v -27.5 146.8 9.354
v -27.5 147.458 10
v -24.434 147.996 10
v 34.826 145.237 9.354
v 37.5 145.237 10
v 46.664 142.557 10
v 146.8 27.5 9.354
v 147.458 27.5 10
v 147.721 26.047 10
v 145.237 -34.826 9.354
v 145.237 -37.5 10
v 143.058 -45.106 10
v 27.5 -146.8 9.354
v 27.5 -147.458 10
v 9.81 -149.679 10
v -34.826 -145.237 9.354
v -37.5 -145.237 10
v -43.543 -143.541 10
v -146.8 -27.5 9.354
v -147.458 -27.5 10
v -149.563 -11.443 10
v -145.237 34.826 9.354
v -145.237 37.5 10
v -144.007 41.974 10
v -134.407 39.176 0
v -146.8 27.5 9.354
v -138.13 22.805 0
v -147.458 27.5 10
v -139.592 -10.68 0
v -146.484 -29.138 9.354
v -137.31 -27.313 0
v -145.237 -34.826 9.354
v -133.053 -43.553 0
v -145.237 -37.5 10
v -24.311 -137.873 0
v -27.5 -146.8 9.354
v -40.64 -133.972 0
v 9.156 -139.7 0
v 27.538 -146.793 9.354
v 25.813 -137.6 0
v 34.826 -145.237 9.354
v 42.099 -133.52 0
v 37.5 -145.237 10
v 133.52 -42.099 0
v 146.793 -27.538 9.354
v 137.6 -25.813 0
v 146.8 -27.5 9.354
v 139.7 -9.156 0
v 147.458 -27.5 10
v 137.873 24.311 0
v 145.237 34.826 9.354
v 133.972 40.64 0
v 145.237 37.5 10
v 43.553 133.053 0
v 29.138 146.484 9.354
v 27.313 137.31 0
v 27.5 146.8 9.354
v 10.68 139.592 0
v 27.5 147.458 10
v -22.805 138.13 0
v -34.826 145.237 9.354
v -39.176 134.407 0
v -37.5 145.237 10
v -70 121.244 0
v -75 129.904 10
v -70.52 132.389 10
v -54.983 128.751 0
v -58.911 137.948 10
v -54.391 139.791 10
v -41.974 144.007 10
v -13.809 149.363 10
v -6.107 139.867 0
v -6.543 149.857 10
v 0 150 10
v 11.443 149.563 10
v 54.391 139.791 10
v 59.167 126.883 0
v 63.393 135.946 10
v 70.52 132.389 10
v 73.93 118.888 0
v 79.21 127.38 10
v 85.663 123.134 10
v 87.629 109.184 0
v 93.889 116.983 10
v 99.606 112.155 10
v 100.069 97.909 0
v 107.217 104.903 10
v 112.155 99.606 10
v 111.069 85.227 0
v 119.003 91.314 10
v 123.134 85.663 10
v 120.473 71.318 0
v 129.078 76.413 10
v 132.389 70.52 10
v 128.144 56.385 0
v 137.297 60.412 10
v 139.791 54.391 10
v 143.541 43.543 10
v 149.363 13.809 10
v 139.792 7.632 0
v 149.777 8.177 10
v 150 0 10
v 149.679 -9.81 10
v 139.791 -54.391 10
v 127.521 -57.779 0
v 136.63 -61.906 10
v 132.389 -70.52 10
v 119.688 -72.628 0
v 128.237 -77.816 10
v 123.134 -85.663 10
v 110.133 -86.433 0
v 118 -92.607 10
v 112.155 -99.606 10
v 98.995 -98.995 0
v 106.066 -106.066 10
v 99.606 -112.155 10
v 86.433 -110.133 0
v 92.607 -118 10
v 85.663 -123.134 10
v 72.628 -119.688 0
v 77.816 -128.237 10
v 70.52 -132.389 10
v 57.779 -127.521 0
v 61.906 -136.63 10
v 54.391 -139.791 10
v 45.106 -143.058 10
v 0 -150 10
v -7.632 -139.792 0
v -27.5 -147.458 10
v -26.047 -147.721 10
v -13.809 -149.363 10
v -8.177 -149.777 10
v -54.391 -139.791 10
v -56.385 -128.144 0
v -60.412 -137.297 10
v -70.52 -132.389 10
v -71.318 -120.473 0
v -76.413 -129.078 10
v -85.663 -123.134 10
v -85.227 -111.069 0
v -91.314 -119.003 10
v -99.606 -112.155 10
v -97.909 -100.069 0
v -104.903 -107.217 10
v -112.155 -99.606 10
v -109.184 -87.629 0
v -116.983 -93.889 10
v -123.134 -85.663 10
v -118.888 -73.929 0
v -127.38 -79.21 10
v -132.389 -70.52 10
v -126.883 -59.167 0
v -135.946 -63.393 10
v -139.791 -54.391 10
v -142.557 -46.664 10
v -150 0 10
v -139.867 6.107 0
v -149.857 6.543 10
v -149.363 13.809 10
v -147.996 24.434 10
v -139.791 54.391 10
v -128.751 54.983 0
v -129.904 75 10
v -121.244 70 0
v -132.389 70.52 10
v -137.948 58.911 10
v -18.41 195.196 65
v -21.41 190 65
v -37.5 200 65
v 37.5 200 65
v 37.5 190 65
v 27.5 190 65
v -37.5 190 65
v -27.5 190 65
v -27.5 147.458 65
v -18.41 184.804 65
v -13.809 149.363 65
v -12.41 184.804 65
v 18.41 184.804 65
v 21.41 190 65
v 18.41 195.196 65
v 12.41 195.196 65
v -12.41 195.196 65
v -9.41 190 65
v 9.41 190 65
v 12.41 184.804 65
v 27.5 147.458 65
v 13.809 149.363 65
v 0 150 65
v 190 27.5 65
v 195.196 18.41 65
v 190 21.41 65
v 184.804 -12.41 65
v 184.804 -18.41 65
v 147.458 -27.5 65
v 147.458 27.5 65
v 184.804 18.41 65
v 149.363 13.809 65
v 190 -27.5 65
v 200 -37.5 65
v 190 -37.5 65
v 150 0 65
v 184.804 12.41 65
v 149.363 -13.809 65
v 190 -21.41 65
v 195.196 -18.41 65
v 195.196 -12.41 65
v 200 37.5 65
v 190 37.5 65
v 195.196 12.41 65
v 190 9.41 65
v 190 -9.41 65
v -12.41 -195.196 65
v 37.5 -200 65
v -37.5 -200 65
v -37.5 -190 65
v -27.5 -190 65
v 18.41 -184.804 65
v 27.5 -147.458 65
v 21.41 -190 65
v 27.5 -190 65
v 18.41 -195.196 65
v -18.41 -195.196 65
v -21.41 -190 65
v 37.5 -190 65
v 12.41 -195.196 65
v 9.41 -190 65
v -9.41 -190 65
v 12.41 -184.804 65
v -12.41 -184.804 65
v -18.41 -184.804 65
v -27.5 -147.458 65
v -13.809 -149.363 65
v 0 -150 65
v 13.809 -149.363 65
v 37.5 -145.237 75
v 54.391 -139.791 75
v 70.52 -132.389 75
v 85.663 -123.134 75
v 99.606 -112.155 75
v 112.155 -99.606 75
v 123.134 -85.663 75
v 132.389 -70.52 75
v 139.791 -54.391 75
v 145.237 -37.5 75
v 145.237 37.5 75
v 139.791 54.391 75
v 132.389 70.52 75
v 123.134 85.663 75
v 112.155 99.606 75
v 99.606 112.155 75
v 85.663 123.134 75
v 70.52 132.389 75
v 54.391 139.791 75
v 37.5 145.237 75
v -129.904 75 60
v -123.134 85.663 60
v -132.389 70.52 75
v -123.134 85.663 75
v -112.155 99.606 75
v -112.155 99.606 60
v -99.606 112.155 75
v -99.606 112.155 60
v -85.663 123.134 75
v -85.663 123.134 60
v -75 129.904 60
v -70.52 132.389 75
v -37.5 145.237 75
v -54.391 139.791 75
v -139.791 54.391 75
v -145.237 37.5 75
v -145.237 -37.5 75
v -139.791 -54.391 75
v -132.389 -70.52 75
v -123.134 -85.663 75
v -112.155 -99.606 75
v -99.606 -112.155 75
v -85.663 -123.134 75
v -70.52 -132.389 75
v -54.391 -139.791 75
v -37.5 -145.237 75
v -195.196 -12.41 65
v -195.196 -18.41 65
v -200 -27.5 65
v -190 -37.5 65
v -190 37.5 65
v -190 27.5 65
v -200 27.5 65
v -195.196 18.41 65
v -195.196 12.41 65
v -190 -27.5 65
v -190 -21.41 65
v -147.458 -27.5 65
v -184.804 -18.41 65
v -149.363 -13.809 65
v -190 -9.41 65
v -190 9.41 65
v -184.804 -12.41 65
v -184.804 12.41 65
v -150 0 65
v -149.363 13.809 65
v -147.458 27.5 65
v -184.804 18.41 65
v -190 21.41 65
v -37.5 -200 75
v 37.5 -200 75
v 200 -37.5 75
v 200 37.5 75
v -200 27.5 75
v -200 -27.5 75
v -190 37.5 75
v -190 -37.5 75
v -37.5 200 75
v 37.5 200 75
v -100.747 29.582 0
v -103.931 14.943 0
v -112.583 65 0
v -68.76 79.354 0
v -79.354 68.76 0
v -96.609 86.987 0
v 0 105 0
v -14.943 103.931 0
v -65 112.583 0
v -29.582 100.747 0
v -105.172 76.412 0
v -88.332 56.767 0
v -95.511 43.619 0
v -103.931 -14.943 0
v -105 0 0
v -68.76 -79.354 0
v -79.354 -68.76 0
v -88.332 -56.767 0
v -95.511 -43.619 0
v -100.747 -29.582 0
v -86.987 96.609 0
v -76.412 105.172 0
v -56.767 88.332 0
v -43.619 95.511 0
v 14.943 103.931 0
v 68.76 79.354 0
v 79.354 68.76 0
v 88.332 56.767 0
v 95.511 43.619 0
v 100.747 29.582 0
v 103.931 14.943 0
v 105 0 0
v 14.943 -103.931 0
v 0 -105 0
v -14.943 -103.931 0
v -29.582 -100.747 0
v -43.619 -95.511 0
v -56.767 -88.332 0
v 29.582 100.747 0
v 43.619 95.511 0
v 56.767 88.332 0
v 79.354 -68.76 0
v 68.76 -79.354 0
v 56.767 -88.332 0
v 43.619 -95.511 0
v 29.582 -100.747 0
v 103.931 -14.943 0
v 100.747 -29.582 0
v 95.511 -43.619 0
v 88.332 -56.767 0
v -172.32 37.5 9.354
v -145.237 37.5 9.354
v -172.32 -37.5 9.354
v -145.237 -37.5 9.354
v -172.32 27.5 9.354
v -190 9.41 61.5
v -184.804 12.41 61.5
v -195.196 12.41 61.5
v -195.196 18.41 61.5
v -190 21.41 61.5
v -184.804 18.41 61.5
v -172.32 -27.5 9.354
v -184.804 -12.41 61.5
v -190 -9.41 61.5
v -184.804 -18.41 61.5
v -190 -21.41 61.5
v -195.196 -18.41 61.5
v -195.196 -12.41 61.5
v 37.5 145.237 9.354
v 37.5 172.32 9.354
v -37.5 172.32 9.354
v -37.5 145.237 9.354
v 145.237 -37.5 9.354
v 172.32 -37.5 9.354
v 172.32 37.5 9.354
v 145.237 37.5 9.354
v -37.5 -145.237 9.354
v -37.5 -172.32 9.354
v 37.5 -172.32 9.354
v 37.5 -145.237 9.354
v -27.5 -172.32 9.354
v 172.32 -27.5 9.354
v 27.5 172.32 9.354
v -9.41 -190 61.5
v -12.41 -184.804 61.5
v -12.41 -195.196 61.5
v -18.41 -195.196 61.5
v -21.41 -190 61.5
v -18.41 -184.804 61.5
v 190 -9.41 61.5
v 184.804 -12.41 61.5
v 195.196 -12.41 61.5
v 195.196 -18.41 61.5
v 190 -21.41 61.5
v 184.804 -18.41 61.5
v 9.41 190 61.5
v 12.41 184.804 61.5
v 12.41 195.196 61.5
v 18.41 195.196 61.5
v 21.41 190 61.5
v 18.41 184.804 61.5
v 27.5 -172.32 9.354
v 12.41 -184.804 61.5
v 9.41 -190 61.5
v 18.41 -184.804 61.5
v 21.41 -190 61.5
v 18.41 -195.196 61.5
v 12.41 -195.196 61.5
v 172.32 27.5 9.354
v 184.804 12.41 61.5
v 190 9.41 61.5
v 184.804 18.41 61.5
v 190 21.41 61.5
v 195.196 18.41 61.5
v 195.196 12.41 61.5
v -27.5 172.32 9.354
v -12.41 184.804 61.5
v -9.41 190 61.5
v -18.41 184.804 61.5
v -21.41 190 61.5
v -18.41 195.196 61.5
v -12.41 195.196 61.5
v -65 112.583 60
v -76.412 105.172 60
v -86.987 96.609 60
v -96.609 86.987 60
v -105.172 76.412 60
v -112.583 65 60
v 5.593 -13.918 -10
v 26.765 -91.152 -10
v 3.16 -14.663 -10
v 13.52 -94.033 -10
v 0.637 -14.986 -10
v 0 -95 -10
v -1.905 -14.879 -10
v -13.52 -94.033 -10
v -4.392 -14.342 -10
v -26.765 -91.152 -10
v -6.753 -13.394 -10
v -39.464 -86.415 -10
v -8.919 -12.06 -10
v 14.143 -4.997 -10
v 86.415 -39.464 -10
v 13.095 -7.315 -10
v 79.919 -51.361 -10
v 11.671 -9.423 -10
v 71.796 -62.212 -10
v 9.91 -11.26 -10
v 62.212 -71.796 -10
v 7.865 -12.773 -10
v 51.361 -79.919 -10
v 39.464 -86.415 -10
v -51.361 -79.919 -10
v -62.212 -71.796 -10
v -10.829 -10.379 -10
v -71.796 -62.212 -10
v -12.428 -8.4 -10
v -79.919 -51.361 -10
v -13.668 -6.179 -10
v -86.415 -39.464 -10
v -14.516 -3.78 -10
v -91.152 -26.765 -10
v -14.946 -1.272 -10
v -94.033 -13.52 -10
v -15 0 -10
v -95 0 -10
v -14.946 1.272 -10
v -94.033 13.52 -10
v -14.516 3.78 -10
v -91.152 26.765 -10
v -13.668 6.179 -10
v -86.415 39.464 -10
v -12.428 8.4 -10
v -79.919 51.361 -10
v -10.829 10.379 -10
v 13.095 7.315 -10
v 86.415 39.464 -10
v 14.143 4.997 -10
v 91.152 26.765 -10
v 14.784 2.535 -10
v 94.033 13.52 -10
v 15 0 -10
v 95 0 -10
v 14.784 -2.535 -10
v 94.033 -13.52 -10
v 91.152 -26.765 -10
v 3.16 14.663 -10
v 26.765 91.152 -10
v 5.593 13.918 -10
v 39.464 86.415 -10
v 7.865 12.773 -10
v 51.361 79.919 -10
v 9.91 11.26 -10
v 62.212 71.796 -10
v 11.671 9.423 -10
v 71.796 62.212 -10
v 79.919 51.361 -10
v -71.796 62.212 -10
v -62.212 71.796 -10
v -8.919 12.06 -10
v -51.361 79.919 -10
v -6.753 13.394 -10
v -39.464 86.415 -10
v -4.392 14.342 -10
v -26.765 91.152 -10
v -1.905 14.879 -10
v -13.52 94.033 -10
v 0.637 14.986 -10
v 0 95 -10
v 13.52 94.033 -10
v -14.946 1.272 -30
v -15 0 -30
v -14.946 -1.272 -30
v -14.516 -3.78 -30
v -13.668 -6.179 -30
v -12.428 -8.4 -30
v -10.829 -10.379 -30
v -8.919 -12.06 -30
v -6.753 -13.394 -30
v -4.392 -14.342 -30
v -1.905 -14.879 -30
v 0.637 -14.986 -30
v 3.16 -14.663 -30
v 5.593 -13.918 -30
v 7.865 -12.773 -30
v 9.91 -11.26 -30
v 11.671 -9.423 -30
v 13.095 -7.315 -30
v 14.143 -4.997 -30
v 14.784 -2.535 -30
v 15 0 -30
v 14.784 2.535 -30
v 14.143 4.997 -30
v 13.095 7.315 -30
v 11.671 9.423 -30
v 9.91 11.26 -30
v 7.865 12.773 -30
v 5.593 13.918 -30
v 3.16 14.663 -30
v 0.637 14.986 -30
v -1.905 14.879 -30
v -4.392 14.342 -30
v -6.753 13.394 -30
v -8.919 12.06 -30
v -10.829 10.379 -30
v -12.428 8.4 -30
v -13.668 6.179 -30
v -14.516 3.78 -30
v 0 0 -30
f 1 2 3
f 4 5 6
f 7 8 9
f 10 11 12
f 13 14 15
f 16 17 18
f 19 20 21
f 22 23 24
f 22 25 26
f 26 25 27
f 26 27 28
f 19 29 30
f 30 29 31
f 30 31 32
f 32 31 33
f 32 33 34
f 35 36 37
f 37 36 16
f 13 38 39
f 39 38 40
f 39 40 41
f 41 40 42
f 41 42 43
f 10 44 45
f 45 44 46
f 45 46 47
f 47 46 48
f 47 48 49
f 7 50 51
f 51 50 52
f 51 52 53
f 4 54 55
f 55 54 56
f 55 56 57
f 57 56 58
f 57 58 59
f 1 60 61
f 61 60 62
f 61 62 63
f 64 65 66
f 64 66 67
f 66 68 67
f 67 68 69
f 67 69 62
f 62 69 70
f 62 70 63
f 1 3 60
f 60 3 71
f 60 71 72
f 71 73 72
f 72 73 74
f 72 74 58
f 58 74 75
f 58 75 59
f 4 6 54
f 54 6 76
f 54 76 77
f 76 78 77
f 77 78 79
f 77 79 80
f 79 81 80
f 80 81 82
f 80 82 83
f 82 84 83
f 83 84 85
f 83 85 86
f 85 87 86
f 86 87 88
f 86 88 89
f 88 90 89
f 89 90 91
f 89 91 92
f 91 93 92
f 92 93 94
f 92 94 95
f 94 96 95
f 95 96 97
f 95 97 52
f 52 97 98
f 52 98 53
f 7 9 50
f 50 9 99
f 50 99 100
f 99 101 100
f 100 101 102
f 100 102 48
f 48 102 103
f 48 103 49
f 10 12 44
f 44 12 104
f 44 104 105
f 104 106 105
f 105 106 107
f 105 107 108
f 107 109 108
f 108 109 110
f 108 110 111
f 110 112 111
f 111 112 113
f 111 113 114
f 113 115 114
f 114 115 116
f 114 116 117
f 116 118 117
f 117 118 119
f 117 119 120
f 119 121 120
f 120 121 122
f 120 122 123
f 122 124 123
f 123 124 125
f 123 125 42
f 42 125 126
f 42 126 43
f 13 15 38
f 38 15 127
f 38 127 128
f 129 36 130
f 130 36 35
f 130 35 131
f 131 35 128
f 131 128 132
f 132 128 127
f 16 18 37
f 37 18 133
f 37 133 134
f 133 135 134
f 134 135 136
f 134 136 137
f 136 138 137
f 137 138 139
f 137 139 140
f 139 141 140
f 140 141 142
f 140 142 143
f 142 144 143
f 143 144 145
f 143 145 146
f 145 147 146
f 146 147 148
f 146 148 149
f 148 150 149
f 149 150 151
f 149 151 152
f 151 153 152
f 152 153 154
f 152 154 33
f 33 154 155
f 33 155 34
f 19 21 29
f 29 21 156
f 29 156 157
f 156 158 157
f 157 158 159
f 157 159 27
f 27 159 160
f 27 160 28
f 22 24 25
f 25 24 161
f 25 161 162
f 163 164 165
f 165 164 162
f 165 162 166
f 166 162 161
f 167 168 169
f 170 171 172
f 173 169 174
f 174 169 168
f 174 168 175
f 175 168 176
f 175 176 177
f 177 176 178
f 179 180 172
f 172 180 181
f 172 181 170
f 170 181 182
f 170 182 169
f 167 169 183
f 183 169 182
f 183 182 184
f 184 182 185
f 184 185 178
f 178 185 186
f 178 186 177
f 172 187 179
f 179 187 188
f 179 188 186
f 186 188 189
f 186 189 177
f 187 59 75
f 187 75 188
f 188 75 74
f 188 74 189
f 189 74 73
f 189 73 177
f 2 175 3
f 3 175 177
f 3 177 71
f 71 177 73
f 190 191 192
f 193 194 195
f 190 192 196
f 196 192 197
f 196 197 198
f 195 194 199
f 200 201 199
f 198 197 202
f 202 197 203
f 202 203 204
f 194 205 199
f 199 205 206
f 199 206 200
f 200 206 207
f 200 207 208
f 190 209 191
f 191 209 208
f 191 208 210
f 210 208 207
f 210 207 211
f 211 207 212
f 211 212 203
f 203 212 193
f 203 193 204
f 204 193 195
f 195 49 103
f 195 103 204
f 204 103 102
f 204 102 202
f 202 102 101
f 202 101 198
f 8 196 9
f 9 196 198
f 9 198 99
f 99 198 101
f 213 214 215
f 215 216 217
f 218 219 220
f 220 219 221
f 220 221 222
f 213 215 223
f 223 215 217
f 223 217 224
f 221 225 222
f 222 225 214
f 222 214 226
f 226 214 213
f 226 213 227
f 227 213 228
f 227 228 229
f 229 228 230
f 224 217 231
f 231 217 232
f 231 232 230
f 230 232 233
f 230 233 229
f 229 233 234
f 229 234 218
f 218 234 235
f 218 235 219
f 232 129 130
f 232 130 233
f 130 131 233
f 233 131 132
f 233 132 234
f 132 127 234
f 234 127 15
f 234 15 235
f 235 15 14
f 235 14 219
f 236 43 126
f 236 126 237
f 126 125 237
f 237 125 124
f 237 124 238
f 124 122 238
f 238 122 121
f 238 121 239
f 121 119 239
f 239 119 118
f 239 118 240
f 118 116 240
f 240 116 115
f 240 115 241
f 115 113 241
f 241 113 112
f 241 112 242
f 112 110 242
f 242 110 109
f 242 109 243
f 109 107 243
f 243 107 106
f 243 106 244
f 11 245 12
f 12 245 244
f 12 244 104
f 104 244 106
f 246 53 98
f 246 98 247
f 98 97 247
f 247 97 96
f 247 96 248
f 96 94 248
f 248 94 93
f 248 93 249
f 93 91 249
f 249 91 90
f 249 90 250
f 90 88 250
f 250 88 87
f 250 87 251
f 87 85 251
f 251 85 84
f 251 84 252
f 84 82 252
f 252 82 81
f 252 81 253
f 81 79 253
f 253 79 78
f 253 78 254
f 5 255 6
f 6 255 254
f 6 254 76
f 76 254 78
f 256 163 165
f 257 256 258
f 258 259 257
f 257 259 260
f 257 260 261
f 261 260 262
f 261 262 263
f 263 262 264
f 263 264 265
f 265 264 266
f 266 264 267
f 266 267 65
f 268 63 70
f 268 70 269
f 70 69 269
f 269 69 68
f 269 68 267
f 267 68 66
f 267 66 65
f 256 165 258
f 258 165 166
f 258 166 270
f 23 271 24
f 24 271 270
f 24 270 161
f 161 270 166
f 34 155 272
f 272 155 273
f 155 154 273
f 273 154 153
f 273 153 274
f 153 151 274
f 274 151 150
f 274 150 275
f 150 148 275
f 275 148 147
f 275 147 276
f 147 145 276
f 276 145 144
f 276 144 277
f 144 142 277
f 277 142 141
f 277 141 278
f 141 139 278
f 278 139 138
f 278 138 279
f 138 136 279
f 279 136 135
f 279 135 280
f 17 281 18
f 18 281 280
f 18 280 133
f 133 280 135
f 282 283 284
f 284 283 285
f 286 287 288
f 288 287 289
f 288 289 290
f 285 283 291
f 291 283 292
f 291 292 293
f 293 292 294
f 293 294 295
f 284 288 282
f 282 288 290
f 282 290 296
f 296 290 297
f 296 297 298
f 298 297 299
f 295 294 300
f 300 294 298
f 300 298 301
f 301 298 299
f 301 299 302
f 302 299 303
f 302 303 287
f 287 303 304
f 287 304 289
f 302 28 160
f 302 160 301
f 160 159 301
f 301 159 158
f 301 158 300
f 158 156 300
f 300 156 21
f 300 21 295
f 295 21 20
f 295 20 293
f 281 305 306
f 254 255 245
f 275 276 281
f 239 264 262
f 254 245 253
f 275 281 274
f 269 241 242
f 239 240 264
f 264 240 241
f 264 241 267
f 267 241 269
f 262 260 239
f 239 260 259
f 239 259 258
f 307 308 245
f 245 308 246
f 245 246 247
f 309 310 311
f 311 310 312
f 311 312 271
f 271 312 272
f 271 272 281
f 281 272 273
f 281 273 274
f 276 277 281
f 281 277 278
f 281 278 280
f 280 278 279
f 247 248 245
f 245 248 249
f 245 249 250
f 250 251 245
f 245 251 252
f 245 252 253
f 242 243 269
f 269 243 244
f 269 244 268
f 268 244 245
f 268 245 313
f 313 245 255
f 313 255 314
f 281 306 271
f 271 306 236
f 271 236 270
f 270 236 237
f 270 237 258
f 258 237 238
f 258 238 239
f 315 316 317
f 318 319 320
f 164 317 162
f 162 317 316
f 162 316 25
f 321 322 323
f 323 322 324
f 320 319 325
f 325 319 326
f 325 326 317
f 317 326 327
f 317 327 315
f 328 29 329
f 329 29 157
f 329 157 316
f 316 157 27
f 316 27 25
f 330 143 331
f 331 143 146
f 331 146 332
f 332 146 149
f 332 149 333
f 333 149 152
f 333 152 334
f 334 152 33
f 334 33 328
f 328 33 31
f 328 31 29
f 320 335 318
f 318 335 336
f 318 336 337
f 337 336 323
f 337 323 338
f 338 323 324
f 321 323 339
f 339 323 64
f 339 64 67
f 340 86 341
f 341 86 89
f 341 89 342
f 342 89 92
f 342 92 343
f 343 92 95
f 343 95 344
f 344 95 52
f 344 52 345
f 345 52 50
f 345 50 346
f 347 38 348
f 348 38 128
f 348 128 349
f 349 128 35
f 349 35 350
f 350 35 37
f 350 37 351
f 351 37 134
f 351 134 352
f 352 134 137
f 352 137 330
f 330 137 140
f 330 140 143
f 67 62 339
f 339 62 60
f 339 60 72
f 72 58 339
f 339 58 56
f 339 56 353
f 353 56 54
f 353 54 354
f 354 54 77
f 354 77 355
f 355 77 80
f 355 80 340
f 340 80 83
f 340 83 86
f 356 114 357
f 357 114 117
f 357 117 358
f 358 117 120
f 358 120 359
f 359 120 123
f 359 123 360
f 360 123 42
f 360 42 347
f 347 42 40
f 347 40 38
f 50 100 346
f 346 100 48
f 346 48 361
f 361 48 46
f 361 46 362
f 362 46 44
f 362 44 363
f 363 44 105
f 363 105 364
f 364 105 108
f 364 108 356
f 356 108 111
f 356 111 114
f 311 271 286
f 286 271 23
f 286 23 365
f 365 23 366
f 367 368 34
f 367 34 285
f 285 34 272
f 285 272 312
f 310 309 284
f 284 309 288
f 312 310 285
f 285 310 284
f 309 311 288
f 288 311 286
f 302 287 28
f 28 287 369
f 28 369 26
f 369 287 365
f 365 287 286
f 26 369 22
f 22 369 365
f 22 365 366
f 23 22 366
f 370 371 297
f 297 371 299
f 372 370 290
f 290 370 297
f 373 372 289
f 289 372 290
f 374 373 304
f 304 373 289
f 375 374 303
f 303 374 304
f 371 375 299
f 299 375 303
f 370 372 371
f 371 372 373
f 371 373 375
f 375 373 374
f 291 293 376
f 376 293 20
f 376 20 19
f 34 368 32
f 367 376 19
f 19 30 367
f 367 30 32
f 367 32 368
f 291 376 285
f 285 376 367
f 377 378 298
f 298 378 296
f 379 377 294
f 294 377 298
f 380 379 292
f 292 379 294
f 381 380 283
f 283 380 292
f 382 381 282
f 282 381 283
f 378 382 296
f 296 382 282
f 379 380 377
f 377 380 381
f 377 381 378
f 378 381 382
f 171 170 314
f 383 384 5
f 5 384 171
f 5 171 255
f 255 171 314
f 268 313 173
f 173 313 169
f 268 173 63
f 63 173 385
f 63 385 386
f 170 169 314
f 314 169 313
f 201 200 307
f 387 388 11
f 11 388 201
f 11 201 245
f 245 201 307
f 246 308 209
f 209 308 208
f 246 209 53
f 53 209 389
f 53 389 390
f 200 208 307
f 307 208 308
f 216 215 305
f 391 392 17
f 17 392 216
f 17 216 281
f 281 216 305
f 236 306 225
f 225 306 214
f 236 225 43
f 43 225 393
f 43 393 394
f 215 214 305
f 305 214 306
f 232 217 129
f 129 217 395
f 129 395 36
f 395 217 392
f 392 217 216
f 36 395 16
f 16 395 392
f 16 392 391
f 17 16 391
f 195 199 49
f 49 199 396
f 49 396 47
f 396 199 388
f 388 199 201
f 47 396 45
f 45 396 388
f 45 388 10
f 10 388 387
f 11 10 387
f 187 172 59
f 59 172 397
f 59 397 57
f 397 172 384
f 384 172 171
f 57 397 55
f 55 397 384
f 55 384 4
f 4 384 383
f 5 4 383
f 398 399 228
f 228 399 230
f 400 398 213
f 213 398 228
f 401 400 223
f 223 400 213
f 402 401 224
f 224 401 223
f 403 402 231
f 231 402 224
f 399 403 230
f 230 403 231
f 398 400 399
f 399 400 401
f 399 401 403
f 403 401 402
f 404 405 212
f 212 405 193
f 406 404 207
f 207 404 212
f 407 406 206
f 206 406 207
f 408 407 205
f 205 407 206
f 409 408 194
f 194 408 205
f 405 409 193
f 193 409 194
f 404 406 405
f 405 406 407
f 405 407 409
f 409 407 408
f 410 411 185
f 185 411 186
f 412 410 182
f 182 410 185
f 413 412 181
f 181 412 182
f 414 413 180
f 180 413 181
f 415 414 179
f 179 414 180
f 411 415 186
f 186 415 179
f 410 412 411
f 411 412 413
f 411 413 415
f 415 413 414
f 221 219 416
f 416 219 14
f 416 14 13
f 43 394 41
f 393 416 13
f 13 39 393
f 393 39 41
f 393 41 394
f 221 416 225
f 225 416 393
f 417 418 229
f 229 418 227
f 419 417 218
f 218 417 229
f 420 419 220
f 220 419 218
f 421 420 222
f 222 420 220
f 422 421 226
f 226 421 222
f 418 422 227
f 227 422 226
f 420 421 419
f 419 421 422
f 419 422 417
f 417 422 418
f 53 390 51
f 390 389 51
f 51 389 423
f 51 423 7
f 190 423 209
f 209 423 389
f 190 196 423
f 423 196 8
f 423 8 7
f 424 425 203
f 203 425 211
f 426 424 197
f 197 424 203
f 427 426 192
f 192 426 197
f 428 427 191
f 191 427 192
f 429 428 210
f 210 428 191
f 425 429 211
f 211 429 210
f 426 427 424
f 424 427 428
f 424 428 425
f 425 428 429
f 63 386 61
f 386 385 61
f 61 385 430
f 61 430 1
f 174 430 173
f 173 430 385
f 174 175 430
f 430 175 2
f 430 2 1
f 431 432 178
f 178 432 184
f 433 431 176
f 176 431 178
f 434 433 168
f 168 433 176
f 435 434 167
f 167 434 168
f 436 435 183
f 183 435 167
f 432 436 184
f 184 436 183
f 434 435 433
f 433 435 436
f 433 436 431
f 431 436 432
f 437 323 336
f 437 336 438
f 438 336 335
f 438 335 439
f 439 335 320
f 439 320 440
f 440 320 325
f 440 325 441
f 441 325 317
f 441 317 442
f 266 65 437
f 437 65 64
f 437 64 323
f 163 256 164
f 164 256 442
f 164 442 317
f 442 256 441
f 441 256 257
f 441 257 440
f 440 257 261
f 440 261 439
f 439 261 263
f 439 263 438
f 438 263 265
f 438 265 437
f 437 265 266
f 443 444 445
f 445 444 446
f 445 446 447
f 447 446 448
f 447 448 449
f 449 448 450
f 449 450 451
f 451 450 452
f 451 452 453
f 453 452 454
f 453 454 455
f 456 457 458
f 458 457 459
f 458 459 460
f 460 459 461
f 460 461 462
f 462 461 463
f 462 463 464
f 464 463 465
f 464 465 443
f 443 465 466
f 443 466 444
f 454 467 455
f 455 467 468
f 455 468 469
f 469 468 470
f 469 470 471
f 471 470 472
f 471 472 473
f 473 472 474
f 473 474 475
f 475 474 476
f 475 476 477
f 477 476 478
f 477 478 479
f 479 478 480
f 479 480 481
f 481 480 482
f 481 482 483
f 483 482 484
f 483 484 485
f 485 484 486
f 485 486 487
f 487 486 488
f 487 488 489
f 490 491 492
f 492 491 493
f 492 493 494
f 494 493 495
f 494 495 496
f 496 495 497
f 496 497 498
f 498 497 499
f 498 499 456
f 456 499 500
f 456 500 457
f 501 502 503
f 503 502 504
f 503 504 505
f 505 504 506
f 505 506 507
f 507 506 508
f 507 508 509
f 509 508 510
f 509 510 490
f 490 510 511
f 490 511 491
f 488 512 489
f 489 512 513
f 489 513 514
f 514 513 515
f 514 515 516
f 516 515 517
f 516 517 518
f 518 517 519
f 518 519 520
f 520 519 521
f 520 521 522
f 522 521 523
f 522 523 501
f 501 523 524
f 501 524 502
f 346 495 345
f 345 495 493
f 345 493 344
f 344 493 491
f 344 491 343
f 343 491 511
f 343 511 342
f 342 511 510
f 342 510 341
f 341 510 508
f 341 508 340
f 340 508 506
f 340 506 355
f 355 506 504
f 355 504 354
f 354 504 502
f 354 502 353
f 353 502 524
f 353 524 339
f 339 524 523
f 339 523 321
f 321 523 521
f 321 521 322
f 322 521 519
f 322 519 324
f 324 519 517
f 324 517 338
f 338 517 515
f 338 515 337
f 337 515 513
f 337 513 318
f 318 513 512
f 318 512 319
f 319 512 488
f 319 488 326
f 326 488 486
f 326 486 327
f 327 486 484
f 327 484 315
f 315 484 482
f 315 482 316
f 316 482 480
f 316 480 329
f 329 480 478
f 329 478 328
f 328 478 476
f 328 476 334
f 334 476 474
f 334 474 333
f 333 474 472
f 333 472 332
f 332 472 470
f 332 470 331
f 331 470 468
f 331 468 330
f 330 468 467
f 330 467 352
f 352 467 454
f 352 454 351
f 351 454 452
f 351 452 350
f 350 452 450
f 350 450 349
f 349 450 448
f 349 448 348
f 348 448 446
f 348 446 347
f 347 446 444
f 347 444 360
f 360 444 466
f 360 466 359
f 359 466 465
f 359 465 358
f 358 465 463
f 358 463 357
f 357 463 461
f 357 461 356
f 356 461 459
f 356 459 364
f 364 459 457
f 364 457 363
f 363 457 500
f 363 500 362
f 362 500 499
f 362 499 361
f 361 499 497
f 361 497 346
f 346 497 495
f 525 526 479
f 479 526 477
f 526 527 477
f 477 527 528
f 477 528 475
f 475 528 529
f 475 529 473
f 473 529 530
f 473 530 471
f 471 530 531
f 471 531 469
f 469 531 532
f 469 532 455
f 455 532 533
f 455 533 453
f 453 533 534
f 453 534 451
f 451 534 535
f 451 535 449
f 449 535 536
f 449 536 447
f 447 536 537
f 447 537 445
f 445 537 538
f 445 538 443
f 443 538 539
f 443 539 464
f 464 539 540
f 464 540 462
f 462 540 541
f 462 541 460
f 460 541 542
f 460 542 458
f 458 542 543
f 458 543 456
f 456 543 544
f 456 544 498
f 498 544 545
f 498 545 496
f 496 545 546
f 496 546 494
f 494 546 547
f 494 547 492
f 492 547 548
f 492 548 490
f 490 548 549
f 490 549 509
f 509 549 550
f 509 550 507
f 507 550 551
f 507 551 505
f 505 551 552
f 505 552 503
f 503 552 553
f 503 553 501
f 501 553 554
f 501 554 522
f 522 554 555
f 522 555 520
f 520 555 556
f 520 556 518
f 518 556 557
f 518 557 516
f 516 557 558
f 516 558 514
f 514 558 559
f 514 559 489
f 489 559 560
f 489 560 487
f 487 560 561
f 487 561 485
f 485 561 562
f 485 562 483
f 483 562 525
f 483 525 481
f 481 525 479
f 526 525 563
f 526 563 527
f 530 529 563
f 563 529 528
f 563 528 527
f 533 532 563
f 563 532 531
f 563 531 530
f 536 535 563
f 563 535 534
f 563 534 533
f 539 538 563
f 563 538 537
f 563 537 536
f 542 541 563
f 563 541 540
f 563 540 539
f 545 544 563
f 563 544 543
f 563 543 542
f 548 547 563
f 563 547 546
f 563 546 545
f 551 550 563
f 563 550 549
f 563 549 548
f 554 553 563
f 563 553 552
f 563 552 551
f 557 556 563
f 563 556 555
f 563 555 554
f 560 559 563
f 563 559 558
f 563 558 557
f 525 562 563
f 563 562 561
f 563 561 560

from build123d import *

# Parameters (mm, degrees)
SKETCH1_R                = 150
BOSS_EXTRUDE1_DEPTH      = 75
CHAMFER1_SIZE            = 10
BOSS_EXTRUDE2_START      = -10
BOSS_EXTRUDE2_DEPTH      = 10
CHAMFER2_SIZE            = 10
BOSS_EXTRUDE3_DEPTH      = 10
BOSS_EXTRUDE4_DEPTH      = 3.5
CIRPATTERN1_COUNT        = 4
CIRPATTERN1_COPY_1_DEPTH = 10
CIRPATTERN1_COPY_2_DEPTH = 10
CIRPATTERN1_COPY_3_DEPTH = 10
CIRPATTERN1_COPY_4_DEPTH = 3.5
CIRPATTERN1_COPY_5_DEPTH = 3.5
CIRPATTERN1_COPY_6_DEPTH = 3.5
CUT_EXTRUDE1_DEPTH       = 60
SKETCH6_R                = 110
BOSS_EXTRUDE5_DEPTH      = 10
CHAMFER3_SIZE            = 15
SKETCH7_R                = 15
BOSS_EXTRUDE6_DEPTH      = 20


with BuildPart() as part:
    # Sketch1 → Boss-Extrude1 (new body)
    with BuildSketch(Plane(origin=(0, 0, 0), x_dir=(0, 1, 0), z_dir=(0, 0, 1))):
        with Locations(Location((0, 0, 0), (0, 0, 270))):
            Circle(SKETCH1_R)
    extrude(amount=BOSS_EXTRUDE1_DEPTH)

    # Chamfer1
    chamfer1_edges = [part.edges().sort_by_distance(p)[0] for p in [
        (-150, 0, 0),
    ]]
    chamfer(chamfer1_edges, length=CHAMFER1_SIZE)

    # Sketch2 → Boss-Extrude2 (add)
    with BuildSketch(Plane.XY.offset(75).offset(BOSS_EXTRUDE2_START)):
        with BuildLine():
            Line((-200, 37.5), (-200, -37.5))
            Line((-200, -37.5), (-145.236875483, -37.5))
            ThreePointArc((-145.236875483, -37.5), (-150, 0), (-145.236875483, 37.5))
            Line((-145.236875483, 37.5), (-200, 37.5))
        make_face()
    boss_extrude2 = extrude(amount=BOSS_EXTRUDE2_DEPTH)

    # Chamfer2
    chamfer2_edges = [part.edges().sort_by_distance(p)[0] for p in [
        (-200, 37.5, 70),
        (-200, -37.5, 70),
    ]]
    chamfer(chamfer2_edges, length=CHAMFER2_SIZE)

    # Sketch3 → Boss-Extrude3 (add)
    with BuildSketch(Plane(origin=(0, 37.5, 0), x_dir=(-1, 0, 0), z_dir=(0, 1, 0))):
        Polygon((145.236875483, 65), (145.236875483, 9.354005049), (172.32, 9.354005049), (190, 65), align=None)
    boss_extrude3 = extrude(amount=-BOSS_EXTRUDE3_DEPTH)

    # Sketch4 → Boss-Extrude4 (add)
    with BuildSketch(Plane(origin=(0, 0, 65), x_dir=(1, 0, 0), z_dir=(0, 0, -1))):
        Polygon((-190, -9.409610349), (-195.196152423, -12.409610349), (-195.196152423, -18.409610349), (-190, -21.409610349), (-184.803847577, -18.409610349), (-184.803847577, -12.409610349), align=None)
    boss_extrude4 = extrude(amount=BOSS_EXTRUDE4_DEPTH)

    # Mirror1: Boss-Extrude3, Boss-Extrude4 across plane
    add(boss_extrude3.mirror(Plane.ZX))
    add(boss_extrude4.mirror(Plane.ZX))

    # CirPattern1: Boss-Extrude2, Boss-Extrude3, Boss-Extrude4 ×4 about axis
    cirpattern1_axis = Axis((0, 0, 0), (0, 0, 1))
    add([boss_extrude2.rotate(cirpattern1_axis, i * 360 / CIRPATTERN1_COUNT) for i in range(1, CIRPATTERN1_COUNT)])
    add([boss_extrude3.rotate(cirpattern1_axis, i * 360 / CIRPATTERN1_COUNT) for i in range(1, CIRPATTERN1_COUNT)])
    add([boss_extrude4.rotate(cirpattern1_axis, i * 360 / CIRPATTERN1_COUNT) for i in range(1, CIRPATTERN1_COUNT)])

    # CirPattern1 copy 1 sketch → CirPattern1 copy 1 (add)
    with BuildSketch(Plane(origin=(37.5, 0, 0), x_dir=(0, -1, 0), z_dir=(1, 0, 0))):
        Polygon((145.236875483, -65), (145.236875483, -9.354005049), (172.32, -9.354005049), (190, -65), align=None)
    extrude(amount=-CIRPATTERN1_COPY_1_DEPTH)

    # CirPattern1 copy 2 sketch → CirPattern1 copy 2 (add)
    with BuildSketch(Plane(origin=(0, 37.5, 0), x_dir=(1, 0, 0), z_dir=(0, 1, 0))):
        Polygon((145.236875483, -65), (145.236875483, -9.354005049), (172.32, -9.354005049), (190, -65), align=None)
    extrude(amount=-CIRPATTERN1_COPY_2_DEPTH)

    # CirPattern1 copy 3 sketch → CirPattern1 copy 3 (add)
    with BuildSketch(Plane(origin=(-37.5, 0, 0), x_dir=(0, 1, 0), z_dir=(-1, 0, 0))):
        Polygon((145.236875483, -65), (145.236875483, -9.354005049), (172.32, -9.354005049), (190, -65), align=None)
    extrude(amount=-CIRPATTERN1_COPY_3_DEPTH)

    # CirPattern1 copy 4 sketch → CirPattern1 copy 4 (add)
    with BuildSketch(Plane.YX.offset(-65)):
        Polygon((-190, 9.409610349), (-195.196152423, 12.409610349), (-195.196152423, 18.409610349), (-190, 21.409610349), (-184.803847577, 18.409610349), (-184.803847577, 12.409610349), align=None)
    extrude(amount=CIRPATTERN1_COPY_4_DEPTH)

    # CirPattern1 copy 5 sketch → CirPattern1 copy 5 (add)
    with BuildSketch(Plane(origin=(0, 0, 65), x_dir=(-1, 0, 0), z_dir=(0, 0, -1))):
        Polygon((-190, 9.409610349), (-195.196152423, 12.409610349), (-195.196152423, 18.409610349), (-190, 21.409610349), (-184.803847577, 18.409610349), (-184.803847577, 12.409610349), align=None)
    extrude(amount=CIRPATTERN1_COPY_5_DEPTH)

    # CirPattern1 copy 6 sketch → CirPattern1 copy 6 (add)
    with BuildSketch(Plane(origin=(0, 0, 65), x_dir=(0, -1, 0), z_dir=(0, 0, -1))):
        Polygon((-190, 9.409610349), (-195.196152423, 12.409610349), (-195.196152423, 18.409610349), (-190, 21.409610349), (-184.803847577, 18.409610349), (-184.803847577, 12.409610349), align=None)
    extrude(amount=CIRPATTERN1_COPY_6_DEPTH)

    # Sketch5 → Cut-Extrude1 (cut)
    with BuildSketch(Plane(origin=(0, 0, 0), x_dir=(1, 0, 0), z_dir=(0, 0, -1))):
        with BuildLine():
            Line((-112.583302492, -65), (-129.903810568, -75))
            ThreePointArc((-129.903810568, -75), (-106.066017178, -106.066017178), (-75, -129.903810568))
            Line((-75, -129.903810568), (-65, -112.583302492))
            ThreePointArc((-65, -112.583302492), (-91.923881554, -91.923881554), (-112.583302492, -65))
        make_face()
    extrude(amount=-CUT_EXTRUDE1_DEPTH, mode=Mode.SUBTRACT)

    # Sketch6 → Boss-Extrude5 (add)
    with BuildSketch(Plane(origin=(0, 0, 0), x_dir=(1, 0, 0), z_dir=(0, 0, -1))):
        with Locations(Location((0, 0, 0), (0, 0, 180))):
            Circle(SKETCH6_R)
    extrude(amount=BOSS_EXTRUDE5_DEPTH)

    # Chamfer3
    # the kernel refuses this chamfer: 15 mm, written as the material it takes off along each edge
    with BuildSketch(Plane(origin=(0, 0, -10), x_dir=(-1, 0, 0), z_dir=(0, -1, 0))) as chamfer3_piece_1_section:
        Polygon((110, -CHAMFER3_SIZE), (110 - CHAMFER3_SIZE, 0), (110, 0), align=None)
    chamfer3_piece_1 = revolve(axis=Axis((0, 0, -10), (0, 0, -1)), mode=Mode.PRIVATE)
    chamfer3_piece_1 = split(chamfer3_piece_1, bisect_by=Plane(origin=(100.081022807, 0, 0), z_dir=(0, 0, -1)), keep=Keep.TOP, mode=Mode.PRIVATE)
    add(chamfer3_piece_1, mode=Mode.SUBTRACT)

    # Sketch7 → Boss-Extrude6 (add)
    with BuildSketch(Plane(origin=(0, 0, -10), x_dir=(1, 0, 0), z_dir=(0, 0, -1))):
        with Locations(Location((0, 0, 0), (0, 0, 180))):
            Circle(SKETCH7_R)
    extrude(amount=BOSS_EXTRUDE6_DEPTH)


solid = part.part
